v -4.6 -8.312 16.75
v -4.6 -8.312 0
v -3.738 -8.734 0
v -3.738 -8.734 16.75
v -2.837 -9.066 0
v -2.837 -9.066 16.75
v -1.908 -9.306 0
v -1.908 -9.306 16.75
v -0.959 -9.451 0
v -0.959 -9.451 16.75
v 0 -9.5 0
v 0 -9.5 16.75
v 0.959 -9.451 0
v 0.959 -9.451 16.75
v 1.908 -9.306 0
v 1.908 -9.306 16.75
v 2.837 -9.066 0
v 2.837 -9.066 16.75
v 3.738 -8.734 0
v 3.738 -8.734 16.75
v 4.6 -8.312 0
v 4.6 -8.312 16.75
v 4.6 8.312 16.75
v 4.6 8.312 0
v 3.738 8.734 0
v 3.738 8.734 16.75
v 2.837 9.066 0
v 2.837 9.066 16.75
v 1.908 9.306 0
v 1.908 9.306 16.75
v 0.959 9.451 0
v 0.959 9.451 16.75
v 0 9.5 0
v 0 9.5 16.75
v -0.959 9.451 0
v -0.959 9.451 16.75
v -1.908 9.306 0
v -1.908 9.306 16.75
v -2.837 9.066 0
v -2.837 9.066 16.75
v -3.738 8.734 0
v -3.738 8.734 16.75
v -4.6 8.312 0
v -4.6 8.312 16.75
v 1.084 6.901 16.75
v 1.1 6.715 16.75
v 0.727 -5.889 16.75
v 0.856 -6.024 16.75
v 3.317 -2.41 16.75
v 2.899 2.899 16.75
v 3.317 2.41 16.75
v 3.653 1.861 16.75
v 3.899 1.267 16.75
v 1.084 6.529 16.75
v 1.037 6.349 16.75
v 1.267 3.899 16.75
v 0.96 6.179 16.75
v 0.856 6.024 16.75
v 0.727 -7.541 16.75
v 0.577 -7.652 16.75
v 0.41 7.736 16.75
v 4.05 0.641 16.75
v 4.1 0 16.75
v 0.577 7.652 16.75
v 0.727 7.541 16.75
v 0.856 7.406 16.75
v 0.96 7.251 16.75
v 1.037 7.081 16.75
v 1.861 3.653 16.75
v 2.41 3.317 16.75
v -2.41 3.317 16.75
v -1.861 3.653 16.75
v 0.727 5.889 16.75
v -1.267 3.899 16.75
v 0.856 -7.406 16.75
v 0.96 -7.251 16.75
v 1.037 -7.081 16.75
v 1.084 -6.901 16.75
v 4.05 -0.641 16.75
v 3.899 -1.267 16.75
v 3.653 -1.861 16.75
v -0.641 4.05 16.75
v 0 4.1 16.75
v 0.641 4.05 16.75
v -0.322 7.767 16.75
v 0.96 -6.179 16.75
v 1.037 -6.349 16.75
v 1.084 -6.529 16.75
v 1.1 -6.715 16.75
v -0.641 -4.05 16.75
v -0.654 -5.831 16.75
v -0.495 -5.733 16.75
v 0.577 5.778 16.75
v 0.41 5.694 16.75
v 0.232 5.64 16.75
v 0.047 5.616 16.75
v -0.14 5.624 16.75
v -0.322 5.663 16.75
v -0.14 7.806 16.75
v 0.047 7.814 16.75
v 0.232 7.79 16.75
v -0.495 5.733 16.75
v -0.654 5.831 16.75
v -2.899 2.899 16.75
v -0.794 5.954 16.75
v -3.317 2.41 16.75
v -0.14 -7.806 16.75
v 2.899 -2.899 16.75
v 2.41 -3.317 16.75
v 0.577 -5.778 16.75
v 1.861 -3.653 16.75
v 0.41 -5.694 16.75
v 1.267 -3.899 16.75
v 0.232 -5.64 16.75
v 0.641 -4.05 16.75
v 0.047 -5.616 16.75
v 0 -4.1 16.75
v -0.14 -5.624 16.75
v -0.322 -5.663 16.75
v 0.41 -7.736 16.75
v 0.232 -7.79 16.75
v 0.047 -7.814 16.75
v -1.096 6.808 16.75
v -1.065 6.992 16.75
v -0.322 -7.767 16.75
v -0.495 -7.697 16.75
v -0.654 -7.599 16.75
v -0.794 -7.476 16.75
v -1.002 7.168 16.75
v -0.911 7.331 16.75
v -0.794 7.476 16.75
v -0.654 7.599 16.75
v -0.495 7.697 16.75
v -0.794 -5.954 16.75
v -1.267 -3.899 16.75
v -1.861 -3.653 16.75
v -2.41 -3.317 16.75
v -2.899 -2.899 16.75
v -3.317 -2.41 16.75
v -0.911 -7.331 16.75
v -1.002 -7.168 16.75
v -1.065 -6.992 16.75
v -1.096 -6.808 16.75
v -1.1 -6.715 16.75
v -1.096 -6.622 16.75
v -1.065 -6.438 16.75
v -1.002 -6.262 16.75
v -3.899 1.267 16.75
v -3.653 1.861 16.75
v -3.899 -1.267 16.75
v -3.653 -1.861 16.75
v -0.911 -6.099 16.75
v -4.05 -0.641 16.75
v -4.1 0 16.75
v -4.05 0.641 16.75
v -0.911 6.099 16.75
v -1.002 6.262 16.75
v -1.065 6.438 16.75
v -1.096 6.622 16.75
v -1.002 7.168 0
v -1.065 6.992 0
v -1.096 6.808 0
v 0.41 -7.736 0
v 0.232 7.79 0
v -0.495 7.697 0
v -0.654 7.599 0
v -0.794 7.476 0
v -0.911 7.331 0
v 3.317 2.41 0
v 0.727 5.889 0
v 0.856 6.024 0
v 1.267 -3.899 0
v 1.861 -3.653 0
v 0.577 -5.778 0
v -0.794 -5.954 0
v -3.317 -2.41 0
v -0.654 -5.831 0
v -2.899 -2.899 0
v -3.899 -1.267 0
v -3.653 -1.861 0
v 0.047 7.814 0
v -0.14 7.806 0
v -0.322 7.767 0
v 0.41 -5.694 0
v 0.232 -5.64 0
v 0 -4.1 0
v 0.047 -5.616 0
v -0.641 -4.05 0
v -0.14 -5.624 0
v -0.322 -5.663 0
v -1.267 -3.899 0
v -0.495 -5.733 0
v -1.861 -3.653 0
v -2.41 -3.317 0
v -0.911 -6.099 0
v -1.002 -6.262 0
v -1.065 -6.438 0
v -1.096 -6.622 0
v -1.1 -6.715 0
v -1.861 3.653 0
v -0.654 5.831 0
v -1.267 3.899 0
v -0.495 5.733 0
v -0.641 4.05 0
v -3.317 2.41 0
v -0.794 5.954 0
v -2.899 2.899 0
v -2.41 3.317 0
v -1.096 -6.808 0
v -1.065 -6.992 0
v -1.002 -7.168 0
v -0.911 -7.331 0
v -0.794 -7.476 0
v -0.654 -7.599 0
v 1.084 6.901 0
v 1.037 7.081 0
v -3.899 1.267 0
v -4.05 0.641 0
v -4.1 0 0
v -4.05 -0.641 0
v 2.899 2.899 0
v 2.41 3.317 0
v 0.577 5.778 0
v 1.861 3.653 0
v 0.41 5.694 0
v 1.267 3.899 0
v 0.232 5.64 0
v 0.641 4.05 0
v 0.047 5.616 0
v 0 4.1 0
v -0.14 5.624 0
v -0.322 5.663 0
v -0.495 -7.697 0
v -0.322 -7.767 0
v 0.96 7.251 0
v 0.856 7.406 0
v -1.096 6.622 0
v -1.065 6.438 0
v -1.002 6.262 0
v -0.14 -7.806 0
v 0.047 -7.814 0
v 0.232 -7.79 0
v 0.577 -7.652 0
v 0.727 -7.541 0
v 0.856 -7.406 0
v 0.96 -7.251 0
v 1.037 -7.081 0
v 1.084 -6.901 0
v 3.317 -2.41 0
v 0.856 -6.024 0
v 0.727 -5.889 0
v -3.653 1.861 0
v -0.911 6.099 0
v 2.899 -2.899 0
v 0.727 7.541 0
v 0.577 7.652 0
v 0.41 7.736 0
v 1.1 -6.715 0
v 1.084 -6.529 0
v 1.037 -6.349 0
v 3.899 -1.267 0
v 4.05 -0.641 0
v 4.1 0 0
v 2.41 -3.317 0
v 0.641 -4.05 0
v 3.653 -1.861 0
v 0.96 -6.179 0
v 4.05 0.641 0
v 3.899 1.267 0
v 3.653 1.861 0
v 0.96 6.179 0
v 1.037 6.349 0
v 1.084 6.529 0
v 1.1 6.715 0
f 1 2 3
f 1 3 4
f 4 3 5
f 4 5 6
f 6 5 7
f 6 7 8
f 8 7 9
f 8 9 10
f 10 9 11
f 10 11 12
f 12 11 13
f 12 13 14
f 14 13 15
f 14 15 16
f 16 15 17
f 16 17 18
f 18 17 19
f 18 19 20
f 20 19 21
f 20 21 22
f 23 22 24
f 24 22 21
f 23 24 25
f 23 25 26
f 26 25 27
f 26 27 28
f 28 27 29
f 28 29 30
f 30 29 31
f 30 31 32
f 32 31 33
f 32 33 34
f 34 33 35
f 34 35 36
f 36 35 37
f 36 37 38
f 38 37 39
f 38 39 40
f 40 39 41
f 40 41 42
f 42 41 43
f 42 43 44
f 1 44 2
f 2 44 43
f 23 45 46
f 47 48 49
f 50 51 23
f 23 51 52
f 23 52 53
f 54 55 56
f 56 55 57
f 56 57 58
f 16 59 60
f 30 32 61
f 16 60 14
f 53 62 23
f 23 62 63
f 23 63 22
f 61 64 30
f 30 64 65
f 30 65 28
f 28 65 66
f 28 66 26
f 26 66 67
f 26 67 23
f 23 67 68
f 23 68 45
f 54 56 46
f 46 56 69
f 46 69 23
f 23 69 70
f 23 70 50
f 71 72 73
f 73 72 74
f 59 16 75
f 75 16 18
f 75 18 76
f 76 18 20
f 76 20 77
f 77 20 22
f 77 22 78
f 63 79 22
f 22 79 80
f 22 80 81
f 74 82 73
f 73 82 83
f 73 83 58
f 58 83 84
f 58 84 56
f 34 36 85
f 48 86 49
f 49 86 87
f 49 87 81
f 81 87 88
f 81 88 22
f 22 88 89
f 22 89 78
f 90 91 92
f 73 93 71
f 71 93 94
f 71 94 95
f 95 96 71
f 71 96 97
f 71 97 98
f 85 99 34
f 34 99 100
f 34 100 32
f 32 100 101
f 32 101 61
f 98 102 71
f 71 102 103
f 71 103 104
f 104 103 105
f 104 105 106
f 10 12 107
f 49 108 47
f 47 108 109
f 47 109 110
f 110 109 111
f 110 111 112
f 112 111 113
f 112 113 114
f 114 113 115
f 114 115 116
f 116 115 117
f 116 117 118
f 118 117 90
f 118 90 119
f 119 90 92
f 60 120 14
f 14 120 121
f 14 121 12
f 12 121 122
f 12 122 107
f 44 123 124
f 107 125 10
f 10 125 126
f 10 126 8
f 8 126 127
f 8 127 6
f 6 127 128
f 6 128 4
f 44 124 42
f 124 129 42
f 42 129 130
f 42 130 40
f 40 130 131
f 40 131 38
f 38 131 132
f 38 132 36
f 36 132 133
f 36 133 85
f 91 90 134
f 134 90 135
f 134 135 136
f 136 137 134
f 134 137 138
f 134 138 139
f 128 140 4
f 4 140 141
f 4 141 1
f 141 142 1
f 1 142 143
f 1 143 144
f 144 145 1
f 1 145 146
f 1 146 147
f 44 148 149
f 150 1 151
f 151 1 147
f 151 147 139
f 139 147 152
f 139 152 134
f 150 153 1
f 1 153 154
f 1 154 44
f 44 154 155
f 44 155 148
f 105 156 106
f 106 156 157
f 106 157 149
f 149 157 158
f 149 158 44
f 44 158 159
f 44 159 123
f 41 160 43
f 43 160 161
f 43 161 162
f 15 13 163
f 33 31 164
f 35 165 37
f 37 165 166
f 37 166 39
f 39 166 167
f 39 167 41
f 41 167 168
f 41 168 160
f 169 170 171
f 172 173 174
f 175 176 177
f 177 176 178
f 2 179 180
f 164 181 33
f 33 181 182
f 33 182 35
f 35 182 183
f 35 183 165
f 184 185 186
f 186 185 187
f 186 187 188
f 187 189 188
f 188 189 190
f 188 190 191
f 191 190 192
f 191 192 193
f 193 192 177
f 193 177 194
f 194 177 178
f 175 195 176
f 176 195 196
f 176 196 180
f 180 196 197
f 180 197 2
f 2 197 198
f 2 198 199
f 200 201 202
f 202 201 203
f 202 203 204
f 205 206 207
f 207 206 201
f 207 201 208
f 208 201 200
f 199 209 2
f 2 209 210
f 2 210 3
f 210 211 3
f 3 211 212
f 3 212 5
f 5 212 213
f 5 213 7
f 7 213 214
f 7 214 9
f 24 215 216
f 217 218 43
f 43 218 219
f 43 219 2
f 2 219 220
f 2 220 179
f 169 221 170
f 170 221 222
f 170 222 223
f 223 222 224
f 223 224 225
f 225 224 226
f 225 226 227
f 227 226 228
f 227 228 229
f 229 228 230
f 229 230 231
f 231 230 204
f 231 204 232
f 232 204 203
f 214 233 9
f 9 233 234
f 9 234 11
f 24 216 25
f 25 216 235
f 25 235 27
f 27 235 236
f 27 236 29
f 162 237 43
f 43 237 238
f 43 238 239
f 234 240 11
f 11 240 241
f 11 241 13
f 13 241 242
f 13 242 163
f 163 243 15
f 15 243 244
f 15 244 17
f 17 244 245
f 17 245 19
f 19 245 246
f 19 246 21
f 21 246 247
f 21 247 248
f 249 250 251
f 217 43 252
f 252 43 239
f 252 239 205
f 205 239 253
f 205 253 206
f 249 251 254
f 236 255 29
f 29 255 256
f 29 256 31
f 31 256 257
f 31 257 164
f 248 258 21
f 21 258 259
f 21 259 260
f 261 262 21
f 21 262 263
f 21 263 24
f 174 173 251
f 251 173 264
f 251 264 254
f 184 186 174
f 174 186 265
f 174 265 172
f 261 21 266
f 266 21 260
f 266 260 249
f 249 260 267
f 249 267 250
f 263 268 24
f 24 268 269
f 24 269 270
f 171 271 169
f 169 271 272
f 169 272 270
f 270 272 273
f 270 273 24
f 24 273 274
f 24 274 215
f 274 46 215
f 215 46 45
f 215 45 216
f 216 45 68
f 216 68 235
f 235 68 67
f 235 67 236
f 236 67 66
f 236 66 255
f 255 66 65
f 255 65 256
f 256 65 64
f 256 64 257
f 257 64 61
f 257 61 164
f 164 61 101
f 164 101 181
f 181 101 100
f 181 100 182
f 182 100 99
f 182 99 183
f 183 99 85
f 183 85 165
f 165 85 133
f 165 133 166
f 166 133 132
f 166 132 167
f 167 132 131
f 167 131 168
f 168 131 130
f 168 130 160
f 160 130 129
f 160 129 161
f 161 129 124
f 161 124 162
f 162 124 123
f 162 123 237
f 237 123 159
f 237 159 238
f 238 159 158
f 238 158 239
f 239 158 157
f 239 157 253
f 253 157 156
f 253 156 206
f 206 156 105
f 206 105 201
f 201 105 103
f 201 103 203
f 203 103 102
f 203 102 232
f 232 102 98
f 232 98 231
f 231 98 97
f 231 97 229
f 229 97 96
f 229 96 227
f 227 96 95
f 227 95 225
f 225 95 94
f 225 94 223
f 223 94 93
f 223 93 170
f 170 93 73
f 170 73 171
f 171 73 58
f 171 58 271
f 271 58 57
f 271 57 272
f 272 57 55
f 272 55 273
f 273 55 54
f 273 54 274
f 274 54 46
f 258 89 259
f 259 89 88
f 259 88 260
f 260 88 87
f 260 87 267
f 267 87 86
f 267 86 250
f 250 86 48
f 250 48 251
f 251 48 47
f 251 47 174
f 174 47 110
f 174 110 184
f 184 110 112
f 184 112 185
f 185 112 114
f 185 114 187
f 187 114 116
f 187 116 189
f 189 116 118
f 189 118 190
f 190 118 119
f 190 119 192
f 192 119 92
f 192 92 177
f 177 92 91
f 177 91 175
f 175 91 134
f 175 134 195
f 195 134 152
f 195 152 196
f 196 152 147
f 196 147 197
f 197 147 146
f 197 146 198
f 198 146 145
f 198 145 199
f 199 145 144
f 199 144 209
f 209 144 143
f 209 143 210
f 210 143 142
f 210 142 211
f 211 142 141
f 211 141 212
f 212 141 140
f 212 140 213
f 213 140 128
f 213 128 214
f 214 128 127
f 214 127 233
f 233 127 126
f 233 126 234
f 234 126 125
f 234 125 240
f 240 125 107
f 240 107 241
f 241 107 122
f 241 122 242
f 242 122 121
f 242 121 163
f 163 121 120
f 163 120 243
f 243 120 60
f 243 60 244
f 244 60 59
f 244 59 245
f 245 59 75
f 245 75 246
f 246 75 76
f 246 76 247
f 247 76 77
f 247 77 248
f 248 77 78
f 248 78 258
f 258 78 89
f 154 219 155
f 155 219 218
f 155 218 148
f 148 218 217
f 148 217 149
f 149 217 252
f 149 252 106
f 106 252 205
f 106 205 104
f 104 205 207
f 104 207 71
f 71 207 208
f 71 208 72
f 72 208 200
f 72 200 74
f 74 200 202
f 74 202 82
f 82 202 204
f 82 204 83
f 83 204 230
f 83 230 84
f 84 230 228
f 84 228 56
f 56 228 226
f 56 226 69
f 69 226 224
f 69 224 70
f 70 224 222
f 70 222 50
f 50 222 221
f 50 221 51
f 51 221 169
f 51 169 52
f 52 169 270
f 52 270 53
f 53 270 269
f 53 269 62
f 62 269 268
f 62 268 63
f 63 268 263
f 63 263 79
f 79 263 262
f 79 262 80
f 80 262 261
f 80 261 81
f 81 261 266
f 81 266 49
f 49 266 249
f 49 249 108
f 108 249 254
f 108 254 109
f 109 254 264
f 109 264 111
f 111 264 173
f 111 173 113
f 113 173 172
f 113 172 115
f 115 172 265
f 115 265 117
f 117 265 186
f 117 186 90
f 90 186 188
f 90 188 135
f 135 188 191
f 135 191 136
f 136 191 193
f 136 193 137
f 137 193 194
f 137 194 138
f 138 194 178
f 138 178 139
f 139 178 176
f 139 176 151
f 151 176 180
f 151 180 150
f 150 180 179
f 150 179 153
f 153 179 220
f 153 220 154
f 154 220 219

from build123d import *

# Parameters (mm, degrees)
EXTRUDE1_DEPTH     = 16.75
SKETCH3_R          = 1.1
CUT_EXTRUDE1_DEPTH = 20.798295381
SKETCH5_R          = 4.1
CUT_EXTRUDE2_DEPTH = 24


with BuildPart() as part:
    # Sketch1 → Extrude1 (new body)
    with BuildSketch(Plane.XY):
        with BuildLine():
            Line((-4.6, -8.312039461), (-4.6, 8.312039461))
            ThreePointArc((-4.6, 8.312039461), (0, 9.5), (4.6, 8.312039461))
            Line((4.6, 8.312039461), (4.6, -8.312039461))
            ThreePointArc((4.6, -8.312039461), (0, -9.5), (-4.6, -8.312039461))
        make_face()
    extrude(amount=EXTRUDE1_DEPTH)

    # Sketch3 → Cut-Extrude1 (cut, through all)
    with BuildSketch(Plane.XY.offset(16.75)):
        with Locations((0, 6.715)):
            Circle(SKETCH3_R)
        with Locations(Location((0, -6.715, 0), (0, 0, 180))):
            Circle(SKETCH3_R)
    extrude(amount=-CUT_EXTRUDE1_DEPTH, mode=Mode.SUBTRACT)

    # Sketch5 → Cut-Extrude2 (cut)
    with BuildSketch(Plane(origin=(0, 0, 0), x_dir=(-1, 0, 0), z_dir=(0, 0, -1))):
        Circle(SKETCH5_R)
    extrude(amount=-CUT_EXTRUDE2_DEPTH, mode=Mode.SUBTRACT)


solid = part.part
